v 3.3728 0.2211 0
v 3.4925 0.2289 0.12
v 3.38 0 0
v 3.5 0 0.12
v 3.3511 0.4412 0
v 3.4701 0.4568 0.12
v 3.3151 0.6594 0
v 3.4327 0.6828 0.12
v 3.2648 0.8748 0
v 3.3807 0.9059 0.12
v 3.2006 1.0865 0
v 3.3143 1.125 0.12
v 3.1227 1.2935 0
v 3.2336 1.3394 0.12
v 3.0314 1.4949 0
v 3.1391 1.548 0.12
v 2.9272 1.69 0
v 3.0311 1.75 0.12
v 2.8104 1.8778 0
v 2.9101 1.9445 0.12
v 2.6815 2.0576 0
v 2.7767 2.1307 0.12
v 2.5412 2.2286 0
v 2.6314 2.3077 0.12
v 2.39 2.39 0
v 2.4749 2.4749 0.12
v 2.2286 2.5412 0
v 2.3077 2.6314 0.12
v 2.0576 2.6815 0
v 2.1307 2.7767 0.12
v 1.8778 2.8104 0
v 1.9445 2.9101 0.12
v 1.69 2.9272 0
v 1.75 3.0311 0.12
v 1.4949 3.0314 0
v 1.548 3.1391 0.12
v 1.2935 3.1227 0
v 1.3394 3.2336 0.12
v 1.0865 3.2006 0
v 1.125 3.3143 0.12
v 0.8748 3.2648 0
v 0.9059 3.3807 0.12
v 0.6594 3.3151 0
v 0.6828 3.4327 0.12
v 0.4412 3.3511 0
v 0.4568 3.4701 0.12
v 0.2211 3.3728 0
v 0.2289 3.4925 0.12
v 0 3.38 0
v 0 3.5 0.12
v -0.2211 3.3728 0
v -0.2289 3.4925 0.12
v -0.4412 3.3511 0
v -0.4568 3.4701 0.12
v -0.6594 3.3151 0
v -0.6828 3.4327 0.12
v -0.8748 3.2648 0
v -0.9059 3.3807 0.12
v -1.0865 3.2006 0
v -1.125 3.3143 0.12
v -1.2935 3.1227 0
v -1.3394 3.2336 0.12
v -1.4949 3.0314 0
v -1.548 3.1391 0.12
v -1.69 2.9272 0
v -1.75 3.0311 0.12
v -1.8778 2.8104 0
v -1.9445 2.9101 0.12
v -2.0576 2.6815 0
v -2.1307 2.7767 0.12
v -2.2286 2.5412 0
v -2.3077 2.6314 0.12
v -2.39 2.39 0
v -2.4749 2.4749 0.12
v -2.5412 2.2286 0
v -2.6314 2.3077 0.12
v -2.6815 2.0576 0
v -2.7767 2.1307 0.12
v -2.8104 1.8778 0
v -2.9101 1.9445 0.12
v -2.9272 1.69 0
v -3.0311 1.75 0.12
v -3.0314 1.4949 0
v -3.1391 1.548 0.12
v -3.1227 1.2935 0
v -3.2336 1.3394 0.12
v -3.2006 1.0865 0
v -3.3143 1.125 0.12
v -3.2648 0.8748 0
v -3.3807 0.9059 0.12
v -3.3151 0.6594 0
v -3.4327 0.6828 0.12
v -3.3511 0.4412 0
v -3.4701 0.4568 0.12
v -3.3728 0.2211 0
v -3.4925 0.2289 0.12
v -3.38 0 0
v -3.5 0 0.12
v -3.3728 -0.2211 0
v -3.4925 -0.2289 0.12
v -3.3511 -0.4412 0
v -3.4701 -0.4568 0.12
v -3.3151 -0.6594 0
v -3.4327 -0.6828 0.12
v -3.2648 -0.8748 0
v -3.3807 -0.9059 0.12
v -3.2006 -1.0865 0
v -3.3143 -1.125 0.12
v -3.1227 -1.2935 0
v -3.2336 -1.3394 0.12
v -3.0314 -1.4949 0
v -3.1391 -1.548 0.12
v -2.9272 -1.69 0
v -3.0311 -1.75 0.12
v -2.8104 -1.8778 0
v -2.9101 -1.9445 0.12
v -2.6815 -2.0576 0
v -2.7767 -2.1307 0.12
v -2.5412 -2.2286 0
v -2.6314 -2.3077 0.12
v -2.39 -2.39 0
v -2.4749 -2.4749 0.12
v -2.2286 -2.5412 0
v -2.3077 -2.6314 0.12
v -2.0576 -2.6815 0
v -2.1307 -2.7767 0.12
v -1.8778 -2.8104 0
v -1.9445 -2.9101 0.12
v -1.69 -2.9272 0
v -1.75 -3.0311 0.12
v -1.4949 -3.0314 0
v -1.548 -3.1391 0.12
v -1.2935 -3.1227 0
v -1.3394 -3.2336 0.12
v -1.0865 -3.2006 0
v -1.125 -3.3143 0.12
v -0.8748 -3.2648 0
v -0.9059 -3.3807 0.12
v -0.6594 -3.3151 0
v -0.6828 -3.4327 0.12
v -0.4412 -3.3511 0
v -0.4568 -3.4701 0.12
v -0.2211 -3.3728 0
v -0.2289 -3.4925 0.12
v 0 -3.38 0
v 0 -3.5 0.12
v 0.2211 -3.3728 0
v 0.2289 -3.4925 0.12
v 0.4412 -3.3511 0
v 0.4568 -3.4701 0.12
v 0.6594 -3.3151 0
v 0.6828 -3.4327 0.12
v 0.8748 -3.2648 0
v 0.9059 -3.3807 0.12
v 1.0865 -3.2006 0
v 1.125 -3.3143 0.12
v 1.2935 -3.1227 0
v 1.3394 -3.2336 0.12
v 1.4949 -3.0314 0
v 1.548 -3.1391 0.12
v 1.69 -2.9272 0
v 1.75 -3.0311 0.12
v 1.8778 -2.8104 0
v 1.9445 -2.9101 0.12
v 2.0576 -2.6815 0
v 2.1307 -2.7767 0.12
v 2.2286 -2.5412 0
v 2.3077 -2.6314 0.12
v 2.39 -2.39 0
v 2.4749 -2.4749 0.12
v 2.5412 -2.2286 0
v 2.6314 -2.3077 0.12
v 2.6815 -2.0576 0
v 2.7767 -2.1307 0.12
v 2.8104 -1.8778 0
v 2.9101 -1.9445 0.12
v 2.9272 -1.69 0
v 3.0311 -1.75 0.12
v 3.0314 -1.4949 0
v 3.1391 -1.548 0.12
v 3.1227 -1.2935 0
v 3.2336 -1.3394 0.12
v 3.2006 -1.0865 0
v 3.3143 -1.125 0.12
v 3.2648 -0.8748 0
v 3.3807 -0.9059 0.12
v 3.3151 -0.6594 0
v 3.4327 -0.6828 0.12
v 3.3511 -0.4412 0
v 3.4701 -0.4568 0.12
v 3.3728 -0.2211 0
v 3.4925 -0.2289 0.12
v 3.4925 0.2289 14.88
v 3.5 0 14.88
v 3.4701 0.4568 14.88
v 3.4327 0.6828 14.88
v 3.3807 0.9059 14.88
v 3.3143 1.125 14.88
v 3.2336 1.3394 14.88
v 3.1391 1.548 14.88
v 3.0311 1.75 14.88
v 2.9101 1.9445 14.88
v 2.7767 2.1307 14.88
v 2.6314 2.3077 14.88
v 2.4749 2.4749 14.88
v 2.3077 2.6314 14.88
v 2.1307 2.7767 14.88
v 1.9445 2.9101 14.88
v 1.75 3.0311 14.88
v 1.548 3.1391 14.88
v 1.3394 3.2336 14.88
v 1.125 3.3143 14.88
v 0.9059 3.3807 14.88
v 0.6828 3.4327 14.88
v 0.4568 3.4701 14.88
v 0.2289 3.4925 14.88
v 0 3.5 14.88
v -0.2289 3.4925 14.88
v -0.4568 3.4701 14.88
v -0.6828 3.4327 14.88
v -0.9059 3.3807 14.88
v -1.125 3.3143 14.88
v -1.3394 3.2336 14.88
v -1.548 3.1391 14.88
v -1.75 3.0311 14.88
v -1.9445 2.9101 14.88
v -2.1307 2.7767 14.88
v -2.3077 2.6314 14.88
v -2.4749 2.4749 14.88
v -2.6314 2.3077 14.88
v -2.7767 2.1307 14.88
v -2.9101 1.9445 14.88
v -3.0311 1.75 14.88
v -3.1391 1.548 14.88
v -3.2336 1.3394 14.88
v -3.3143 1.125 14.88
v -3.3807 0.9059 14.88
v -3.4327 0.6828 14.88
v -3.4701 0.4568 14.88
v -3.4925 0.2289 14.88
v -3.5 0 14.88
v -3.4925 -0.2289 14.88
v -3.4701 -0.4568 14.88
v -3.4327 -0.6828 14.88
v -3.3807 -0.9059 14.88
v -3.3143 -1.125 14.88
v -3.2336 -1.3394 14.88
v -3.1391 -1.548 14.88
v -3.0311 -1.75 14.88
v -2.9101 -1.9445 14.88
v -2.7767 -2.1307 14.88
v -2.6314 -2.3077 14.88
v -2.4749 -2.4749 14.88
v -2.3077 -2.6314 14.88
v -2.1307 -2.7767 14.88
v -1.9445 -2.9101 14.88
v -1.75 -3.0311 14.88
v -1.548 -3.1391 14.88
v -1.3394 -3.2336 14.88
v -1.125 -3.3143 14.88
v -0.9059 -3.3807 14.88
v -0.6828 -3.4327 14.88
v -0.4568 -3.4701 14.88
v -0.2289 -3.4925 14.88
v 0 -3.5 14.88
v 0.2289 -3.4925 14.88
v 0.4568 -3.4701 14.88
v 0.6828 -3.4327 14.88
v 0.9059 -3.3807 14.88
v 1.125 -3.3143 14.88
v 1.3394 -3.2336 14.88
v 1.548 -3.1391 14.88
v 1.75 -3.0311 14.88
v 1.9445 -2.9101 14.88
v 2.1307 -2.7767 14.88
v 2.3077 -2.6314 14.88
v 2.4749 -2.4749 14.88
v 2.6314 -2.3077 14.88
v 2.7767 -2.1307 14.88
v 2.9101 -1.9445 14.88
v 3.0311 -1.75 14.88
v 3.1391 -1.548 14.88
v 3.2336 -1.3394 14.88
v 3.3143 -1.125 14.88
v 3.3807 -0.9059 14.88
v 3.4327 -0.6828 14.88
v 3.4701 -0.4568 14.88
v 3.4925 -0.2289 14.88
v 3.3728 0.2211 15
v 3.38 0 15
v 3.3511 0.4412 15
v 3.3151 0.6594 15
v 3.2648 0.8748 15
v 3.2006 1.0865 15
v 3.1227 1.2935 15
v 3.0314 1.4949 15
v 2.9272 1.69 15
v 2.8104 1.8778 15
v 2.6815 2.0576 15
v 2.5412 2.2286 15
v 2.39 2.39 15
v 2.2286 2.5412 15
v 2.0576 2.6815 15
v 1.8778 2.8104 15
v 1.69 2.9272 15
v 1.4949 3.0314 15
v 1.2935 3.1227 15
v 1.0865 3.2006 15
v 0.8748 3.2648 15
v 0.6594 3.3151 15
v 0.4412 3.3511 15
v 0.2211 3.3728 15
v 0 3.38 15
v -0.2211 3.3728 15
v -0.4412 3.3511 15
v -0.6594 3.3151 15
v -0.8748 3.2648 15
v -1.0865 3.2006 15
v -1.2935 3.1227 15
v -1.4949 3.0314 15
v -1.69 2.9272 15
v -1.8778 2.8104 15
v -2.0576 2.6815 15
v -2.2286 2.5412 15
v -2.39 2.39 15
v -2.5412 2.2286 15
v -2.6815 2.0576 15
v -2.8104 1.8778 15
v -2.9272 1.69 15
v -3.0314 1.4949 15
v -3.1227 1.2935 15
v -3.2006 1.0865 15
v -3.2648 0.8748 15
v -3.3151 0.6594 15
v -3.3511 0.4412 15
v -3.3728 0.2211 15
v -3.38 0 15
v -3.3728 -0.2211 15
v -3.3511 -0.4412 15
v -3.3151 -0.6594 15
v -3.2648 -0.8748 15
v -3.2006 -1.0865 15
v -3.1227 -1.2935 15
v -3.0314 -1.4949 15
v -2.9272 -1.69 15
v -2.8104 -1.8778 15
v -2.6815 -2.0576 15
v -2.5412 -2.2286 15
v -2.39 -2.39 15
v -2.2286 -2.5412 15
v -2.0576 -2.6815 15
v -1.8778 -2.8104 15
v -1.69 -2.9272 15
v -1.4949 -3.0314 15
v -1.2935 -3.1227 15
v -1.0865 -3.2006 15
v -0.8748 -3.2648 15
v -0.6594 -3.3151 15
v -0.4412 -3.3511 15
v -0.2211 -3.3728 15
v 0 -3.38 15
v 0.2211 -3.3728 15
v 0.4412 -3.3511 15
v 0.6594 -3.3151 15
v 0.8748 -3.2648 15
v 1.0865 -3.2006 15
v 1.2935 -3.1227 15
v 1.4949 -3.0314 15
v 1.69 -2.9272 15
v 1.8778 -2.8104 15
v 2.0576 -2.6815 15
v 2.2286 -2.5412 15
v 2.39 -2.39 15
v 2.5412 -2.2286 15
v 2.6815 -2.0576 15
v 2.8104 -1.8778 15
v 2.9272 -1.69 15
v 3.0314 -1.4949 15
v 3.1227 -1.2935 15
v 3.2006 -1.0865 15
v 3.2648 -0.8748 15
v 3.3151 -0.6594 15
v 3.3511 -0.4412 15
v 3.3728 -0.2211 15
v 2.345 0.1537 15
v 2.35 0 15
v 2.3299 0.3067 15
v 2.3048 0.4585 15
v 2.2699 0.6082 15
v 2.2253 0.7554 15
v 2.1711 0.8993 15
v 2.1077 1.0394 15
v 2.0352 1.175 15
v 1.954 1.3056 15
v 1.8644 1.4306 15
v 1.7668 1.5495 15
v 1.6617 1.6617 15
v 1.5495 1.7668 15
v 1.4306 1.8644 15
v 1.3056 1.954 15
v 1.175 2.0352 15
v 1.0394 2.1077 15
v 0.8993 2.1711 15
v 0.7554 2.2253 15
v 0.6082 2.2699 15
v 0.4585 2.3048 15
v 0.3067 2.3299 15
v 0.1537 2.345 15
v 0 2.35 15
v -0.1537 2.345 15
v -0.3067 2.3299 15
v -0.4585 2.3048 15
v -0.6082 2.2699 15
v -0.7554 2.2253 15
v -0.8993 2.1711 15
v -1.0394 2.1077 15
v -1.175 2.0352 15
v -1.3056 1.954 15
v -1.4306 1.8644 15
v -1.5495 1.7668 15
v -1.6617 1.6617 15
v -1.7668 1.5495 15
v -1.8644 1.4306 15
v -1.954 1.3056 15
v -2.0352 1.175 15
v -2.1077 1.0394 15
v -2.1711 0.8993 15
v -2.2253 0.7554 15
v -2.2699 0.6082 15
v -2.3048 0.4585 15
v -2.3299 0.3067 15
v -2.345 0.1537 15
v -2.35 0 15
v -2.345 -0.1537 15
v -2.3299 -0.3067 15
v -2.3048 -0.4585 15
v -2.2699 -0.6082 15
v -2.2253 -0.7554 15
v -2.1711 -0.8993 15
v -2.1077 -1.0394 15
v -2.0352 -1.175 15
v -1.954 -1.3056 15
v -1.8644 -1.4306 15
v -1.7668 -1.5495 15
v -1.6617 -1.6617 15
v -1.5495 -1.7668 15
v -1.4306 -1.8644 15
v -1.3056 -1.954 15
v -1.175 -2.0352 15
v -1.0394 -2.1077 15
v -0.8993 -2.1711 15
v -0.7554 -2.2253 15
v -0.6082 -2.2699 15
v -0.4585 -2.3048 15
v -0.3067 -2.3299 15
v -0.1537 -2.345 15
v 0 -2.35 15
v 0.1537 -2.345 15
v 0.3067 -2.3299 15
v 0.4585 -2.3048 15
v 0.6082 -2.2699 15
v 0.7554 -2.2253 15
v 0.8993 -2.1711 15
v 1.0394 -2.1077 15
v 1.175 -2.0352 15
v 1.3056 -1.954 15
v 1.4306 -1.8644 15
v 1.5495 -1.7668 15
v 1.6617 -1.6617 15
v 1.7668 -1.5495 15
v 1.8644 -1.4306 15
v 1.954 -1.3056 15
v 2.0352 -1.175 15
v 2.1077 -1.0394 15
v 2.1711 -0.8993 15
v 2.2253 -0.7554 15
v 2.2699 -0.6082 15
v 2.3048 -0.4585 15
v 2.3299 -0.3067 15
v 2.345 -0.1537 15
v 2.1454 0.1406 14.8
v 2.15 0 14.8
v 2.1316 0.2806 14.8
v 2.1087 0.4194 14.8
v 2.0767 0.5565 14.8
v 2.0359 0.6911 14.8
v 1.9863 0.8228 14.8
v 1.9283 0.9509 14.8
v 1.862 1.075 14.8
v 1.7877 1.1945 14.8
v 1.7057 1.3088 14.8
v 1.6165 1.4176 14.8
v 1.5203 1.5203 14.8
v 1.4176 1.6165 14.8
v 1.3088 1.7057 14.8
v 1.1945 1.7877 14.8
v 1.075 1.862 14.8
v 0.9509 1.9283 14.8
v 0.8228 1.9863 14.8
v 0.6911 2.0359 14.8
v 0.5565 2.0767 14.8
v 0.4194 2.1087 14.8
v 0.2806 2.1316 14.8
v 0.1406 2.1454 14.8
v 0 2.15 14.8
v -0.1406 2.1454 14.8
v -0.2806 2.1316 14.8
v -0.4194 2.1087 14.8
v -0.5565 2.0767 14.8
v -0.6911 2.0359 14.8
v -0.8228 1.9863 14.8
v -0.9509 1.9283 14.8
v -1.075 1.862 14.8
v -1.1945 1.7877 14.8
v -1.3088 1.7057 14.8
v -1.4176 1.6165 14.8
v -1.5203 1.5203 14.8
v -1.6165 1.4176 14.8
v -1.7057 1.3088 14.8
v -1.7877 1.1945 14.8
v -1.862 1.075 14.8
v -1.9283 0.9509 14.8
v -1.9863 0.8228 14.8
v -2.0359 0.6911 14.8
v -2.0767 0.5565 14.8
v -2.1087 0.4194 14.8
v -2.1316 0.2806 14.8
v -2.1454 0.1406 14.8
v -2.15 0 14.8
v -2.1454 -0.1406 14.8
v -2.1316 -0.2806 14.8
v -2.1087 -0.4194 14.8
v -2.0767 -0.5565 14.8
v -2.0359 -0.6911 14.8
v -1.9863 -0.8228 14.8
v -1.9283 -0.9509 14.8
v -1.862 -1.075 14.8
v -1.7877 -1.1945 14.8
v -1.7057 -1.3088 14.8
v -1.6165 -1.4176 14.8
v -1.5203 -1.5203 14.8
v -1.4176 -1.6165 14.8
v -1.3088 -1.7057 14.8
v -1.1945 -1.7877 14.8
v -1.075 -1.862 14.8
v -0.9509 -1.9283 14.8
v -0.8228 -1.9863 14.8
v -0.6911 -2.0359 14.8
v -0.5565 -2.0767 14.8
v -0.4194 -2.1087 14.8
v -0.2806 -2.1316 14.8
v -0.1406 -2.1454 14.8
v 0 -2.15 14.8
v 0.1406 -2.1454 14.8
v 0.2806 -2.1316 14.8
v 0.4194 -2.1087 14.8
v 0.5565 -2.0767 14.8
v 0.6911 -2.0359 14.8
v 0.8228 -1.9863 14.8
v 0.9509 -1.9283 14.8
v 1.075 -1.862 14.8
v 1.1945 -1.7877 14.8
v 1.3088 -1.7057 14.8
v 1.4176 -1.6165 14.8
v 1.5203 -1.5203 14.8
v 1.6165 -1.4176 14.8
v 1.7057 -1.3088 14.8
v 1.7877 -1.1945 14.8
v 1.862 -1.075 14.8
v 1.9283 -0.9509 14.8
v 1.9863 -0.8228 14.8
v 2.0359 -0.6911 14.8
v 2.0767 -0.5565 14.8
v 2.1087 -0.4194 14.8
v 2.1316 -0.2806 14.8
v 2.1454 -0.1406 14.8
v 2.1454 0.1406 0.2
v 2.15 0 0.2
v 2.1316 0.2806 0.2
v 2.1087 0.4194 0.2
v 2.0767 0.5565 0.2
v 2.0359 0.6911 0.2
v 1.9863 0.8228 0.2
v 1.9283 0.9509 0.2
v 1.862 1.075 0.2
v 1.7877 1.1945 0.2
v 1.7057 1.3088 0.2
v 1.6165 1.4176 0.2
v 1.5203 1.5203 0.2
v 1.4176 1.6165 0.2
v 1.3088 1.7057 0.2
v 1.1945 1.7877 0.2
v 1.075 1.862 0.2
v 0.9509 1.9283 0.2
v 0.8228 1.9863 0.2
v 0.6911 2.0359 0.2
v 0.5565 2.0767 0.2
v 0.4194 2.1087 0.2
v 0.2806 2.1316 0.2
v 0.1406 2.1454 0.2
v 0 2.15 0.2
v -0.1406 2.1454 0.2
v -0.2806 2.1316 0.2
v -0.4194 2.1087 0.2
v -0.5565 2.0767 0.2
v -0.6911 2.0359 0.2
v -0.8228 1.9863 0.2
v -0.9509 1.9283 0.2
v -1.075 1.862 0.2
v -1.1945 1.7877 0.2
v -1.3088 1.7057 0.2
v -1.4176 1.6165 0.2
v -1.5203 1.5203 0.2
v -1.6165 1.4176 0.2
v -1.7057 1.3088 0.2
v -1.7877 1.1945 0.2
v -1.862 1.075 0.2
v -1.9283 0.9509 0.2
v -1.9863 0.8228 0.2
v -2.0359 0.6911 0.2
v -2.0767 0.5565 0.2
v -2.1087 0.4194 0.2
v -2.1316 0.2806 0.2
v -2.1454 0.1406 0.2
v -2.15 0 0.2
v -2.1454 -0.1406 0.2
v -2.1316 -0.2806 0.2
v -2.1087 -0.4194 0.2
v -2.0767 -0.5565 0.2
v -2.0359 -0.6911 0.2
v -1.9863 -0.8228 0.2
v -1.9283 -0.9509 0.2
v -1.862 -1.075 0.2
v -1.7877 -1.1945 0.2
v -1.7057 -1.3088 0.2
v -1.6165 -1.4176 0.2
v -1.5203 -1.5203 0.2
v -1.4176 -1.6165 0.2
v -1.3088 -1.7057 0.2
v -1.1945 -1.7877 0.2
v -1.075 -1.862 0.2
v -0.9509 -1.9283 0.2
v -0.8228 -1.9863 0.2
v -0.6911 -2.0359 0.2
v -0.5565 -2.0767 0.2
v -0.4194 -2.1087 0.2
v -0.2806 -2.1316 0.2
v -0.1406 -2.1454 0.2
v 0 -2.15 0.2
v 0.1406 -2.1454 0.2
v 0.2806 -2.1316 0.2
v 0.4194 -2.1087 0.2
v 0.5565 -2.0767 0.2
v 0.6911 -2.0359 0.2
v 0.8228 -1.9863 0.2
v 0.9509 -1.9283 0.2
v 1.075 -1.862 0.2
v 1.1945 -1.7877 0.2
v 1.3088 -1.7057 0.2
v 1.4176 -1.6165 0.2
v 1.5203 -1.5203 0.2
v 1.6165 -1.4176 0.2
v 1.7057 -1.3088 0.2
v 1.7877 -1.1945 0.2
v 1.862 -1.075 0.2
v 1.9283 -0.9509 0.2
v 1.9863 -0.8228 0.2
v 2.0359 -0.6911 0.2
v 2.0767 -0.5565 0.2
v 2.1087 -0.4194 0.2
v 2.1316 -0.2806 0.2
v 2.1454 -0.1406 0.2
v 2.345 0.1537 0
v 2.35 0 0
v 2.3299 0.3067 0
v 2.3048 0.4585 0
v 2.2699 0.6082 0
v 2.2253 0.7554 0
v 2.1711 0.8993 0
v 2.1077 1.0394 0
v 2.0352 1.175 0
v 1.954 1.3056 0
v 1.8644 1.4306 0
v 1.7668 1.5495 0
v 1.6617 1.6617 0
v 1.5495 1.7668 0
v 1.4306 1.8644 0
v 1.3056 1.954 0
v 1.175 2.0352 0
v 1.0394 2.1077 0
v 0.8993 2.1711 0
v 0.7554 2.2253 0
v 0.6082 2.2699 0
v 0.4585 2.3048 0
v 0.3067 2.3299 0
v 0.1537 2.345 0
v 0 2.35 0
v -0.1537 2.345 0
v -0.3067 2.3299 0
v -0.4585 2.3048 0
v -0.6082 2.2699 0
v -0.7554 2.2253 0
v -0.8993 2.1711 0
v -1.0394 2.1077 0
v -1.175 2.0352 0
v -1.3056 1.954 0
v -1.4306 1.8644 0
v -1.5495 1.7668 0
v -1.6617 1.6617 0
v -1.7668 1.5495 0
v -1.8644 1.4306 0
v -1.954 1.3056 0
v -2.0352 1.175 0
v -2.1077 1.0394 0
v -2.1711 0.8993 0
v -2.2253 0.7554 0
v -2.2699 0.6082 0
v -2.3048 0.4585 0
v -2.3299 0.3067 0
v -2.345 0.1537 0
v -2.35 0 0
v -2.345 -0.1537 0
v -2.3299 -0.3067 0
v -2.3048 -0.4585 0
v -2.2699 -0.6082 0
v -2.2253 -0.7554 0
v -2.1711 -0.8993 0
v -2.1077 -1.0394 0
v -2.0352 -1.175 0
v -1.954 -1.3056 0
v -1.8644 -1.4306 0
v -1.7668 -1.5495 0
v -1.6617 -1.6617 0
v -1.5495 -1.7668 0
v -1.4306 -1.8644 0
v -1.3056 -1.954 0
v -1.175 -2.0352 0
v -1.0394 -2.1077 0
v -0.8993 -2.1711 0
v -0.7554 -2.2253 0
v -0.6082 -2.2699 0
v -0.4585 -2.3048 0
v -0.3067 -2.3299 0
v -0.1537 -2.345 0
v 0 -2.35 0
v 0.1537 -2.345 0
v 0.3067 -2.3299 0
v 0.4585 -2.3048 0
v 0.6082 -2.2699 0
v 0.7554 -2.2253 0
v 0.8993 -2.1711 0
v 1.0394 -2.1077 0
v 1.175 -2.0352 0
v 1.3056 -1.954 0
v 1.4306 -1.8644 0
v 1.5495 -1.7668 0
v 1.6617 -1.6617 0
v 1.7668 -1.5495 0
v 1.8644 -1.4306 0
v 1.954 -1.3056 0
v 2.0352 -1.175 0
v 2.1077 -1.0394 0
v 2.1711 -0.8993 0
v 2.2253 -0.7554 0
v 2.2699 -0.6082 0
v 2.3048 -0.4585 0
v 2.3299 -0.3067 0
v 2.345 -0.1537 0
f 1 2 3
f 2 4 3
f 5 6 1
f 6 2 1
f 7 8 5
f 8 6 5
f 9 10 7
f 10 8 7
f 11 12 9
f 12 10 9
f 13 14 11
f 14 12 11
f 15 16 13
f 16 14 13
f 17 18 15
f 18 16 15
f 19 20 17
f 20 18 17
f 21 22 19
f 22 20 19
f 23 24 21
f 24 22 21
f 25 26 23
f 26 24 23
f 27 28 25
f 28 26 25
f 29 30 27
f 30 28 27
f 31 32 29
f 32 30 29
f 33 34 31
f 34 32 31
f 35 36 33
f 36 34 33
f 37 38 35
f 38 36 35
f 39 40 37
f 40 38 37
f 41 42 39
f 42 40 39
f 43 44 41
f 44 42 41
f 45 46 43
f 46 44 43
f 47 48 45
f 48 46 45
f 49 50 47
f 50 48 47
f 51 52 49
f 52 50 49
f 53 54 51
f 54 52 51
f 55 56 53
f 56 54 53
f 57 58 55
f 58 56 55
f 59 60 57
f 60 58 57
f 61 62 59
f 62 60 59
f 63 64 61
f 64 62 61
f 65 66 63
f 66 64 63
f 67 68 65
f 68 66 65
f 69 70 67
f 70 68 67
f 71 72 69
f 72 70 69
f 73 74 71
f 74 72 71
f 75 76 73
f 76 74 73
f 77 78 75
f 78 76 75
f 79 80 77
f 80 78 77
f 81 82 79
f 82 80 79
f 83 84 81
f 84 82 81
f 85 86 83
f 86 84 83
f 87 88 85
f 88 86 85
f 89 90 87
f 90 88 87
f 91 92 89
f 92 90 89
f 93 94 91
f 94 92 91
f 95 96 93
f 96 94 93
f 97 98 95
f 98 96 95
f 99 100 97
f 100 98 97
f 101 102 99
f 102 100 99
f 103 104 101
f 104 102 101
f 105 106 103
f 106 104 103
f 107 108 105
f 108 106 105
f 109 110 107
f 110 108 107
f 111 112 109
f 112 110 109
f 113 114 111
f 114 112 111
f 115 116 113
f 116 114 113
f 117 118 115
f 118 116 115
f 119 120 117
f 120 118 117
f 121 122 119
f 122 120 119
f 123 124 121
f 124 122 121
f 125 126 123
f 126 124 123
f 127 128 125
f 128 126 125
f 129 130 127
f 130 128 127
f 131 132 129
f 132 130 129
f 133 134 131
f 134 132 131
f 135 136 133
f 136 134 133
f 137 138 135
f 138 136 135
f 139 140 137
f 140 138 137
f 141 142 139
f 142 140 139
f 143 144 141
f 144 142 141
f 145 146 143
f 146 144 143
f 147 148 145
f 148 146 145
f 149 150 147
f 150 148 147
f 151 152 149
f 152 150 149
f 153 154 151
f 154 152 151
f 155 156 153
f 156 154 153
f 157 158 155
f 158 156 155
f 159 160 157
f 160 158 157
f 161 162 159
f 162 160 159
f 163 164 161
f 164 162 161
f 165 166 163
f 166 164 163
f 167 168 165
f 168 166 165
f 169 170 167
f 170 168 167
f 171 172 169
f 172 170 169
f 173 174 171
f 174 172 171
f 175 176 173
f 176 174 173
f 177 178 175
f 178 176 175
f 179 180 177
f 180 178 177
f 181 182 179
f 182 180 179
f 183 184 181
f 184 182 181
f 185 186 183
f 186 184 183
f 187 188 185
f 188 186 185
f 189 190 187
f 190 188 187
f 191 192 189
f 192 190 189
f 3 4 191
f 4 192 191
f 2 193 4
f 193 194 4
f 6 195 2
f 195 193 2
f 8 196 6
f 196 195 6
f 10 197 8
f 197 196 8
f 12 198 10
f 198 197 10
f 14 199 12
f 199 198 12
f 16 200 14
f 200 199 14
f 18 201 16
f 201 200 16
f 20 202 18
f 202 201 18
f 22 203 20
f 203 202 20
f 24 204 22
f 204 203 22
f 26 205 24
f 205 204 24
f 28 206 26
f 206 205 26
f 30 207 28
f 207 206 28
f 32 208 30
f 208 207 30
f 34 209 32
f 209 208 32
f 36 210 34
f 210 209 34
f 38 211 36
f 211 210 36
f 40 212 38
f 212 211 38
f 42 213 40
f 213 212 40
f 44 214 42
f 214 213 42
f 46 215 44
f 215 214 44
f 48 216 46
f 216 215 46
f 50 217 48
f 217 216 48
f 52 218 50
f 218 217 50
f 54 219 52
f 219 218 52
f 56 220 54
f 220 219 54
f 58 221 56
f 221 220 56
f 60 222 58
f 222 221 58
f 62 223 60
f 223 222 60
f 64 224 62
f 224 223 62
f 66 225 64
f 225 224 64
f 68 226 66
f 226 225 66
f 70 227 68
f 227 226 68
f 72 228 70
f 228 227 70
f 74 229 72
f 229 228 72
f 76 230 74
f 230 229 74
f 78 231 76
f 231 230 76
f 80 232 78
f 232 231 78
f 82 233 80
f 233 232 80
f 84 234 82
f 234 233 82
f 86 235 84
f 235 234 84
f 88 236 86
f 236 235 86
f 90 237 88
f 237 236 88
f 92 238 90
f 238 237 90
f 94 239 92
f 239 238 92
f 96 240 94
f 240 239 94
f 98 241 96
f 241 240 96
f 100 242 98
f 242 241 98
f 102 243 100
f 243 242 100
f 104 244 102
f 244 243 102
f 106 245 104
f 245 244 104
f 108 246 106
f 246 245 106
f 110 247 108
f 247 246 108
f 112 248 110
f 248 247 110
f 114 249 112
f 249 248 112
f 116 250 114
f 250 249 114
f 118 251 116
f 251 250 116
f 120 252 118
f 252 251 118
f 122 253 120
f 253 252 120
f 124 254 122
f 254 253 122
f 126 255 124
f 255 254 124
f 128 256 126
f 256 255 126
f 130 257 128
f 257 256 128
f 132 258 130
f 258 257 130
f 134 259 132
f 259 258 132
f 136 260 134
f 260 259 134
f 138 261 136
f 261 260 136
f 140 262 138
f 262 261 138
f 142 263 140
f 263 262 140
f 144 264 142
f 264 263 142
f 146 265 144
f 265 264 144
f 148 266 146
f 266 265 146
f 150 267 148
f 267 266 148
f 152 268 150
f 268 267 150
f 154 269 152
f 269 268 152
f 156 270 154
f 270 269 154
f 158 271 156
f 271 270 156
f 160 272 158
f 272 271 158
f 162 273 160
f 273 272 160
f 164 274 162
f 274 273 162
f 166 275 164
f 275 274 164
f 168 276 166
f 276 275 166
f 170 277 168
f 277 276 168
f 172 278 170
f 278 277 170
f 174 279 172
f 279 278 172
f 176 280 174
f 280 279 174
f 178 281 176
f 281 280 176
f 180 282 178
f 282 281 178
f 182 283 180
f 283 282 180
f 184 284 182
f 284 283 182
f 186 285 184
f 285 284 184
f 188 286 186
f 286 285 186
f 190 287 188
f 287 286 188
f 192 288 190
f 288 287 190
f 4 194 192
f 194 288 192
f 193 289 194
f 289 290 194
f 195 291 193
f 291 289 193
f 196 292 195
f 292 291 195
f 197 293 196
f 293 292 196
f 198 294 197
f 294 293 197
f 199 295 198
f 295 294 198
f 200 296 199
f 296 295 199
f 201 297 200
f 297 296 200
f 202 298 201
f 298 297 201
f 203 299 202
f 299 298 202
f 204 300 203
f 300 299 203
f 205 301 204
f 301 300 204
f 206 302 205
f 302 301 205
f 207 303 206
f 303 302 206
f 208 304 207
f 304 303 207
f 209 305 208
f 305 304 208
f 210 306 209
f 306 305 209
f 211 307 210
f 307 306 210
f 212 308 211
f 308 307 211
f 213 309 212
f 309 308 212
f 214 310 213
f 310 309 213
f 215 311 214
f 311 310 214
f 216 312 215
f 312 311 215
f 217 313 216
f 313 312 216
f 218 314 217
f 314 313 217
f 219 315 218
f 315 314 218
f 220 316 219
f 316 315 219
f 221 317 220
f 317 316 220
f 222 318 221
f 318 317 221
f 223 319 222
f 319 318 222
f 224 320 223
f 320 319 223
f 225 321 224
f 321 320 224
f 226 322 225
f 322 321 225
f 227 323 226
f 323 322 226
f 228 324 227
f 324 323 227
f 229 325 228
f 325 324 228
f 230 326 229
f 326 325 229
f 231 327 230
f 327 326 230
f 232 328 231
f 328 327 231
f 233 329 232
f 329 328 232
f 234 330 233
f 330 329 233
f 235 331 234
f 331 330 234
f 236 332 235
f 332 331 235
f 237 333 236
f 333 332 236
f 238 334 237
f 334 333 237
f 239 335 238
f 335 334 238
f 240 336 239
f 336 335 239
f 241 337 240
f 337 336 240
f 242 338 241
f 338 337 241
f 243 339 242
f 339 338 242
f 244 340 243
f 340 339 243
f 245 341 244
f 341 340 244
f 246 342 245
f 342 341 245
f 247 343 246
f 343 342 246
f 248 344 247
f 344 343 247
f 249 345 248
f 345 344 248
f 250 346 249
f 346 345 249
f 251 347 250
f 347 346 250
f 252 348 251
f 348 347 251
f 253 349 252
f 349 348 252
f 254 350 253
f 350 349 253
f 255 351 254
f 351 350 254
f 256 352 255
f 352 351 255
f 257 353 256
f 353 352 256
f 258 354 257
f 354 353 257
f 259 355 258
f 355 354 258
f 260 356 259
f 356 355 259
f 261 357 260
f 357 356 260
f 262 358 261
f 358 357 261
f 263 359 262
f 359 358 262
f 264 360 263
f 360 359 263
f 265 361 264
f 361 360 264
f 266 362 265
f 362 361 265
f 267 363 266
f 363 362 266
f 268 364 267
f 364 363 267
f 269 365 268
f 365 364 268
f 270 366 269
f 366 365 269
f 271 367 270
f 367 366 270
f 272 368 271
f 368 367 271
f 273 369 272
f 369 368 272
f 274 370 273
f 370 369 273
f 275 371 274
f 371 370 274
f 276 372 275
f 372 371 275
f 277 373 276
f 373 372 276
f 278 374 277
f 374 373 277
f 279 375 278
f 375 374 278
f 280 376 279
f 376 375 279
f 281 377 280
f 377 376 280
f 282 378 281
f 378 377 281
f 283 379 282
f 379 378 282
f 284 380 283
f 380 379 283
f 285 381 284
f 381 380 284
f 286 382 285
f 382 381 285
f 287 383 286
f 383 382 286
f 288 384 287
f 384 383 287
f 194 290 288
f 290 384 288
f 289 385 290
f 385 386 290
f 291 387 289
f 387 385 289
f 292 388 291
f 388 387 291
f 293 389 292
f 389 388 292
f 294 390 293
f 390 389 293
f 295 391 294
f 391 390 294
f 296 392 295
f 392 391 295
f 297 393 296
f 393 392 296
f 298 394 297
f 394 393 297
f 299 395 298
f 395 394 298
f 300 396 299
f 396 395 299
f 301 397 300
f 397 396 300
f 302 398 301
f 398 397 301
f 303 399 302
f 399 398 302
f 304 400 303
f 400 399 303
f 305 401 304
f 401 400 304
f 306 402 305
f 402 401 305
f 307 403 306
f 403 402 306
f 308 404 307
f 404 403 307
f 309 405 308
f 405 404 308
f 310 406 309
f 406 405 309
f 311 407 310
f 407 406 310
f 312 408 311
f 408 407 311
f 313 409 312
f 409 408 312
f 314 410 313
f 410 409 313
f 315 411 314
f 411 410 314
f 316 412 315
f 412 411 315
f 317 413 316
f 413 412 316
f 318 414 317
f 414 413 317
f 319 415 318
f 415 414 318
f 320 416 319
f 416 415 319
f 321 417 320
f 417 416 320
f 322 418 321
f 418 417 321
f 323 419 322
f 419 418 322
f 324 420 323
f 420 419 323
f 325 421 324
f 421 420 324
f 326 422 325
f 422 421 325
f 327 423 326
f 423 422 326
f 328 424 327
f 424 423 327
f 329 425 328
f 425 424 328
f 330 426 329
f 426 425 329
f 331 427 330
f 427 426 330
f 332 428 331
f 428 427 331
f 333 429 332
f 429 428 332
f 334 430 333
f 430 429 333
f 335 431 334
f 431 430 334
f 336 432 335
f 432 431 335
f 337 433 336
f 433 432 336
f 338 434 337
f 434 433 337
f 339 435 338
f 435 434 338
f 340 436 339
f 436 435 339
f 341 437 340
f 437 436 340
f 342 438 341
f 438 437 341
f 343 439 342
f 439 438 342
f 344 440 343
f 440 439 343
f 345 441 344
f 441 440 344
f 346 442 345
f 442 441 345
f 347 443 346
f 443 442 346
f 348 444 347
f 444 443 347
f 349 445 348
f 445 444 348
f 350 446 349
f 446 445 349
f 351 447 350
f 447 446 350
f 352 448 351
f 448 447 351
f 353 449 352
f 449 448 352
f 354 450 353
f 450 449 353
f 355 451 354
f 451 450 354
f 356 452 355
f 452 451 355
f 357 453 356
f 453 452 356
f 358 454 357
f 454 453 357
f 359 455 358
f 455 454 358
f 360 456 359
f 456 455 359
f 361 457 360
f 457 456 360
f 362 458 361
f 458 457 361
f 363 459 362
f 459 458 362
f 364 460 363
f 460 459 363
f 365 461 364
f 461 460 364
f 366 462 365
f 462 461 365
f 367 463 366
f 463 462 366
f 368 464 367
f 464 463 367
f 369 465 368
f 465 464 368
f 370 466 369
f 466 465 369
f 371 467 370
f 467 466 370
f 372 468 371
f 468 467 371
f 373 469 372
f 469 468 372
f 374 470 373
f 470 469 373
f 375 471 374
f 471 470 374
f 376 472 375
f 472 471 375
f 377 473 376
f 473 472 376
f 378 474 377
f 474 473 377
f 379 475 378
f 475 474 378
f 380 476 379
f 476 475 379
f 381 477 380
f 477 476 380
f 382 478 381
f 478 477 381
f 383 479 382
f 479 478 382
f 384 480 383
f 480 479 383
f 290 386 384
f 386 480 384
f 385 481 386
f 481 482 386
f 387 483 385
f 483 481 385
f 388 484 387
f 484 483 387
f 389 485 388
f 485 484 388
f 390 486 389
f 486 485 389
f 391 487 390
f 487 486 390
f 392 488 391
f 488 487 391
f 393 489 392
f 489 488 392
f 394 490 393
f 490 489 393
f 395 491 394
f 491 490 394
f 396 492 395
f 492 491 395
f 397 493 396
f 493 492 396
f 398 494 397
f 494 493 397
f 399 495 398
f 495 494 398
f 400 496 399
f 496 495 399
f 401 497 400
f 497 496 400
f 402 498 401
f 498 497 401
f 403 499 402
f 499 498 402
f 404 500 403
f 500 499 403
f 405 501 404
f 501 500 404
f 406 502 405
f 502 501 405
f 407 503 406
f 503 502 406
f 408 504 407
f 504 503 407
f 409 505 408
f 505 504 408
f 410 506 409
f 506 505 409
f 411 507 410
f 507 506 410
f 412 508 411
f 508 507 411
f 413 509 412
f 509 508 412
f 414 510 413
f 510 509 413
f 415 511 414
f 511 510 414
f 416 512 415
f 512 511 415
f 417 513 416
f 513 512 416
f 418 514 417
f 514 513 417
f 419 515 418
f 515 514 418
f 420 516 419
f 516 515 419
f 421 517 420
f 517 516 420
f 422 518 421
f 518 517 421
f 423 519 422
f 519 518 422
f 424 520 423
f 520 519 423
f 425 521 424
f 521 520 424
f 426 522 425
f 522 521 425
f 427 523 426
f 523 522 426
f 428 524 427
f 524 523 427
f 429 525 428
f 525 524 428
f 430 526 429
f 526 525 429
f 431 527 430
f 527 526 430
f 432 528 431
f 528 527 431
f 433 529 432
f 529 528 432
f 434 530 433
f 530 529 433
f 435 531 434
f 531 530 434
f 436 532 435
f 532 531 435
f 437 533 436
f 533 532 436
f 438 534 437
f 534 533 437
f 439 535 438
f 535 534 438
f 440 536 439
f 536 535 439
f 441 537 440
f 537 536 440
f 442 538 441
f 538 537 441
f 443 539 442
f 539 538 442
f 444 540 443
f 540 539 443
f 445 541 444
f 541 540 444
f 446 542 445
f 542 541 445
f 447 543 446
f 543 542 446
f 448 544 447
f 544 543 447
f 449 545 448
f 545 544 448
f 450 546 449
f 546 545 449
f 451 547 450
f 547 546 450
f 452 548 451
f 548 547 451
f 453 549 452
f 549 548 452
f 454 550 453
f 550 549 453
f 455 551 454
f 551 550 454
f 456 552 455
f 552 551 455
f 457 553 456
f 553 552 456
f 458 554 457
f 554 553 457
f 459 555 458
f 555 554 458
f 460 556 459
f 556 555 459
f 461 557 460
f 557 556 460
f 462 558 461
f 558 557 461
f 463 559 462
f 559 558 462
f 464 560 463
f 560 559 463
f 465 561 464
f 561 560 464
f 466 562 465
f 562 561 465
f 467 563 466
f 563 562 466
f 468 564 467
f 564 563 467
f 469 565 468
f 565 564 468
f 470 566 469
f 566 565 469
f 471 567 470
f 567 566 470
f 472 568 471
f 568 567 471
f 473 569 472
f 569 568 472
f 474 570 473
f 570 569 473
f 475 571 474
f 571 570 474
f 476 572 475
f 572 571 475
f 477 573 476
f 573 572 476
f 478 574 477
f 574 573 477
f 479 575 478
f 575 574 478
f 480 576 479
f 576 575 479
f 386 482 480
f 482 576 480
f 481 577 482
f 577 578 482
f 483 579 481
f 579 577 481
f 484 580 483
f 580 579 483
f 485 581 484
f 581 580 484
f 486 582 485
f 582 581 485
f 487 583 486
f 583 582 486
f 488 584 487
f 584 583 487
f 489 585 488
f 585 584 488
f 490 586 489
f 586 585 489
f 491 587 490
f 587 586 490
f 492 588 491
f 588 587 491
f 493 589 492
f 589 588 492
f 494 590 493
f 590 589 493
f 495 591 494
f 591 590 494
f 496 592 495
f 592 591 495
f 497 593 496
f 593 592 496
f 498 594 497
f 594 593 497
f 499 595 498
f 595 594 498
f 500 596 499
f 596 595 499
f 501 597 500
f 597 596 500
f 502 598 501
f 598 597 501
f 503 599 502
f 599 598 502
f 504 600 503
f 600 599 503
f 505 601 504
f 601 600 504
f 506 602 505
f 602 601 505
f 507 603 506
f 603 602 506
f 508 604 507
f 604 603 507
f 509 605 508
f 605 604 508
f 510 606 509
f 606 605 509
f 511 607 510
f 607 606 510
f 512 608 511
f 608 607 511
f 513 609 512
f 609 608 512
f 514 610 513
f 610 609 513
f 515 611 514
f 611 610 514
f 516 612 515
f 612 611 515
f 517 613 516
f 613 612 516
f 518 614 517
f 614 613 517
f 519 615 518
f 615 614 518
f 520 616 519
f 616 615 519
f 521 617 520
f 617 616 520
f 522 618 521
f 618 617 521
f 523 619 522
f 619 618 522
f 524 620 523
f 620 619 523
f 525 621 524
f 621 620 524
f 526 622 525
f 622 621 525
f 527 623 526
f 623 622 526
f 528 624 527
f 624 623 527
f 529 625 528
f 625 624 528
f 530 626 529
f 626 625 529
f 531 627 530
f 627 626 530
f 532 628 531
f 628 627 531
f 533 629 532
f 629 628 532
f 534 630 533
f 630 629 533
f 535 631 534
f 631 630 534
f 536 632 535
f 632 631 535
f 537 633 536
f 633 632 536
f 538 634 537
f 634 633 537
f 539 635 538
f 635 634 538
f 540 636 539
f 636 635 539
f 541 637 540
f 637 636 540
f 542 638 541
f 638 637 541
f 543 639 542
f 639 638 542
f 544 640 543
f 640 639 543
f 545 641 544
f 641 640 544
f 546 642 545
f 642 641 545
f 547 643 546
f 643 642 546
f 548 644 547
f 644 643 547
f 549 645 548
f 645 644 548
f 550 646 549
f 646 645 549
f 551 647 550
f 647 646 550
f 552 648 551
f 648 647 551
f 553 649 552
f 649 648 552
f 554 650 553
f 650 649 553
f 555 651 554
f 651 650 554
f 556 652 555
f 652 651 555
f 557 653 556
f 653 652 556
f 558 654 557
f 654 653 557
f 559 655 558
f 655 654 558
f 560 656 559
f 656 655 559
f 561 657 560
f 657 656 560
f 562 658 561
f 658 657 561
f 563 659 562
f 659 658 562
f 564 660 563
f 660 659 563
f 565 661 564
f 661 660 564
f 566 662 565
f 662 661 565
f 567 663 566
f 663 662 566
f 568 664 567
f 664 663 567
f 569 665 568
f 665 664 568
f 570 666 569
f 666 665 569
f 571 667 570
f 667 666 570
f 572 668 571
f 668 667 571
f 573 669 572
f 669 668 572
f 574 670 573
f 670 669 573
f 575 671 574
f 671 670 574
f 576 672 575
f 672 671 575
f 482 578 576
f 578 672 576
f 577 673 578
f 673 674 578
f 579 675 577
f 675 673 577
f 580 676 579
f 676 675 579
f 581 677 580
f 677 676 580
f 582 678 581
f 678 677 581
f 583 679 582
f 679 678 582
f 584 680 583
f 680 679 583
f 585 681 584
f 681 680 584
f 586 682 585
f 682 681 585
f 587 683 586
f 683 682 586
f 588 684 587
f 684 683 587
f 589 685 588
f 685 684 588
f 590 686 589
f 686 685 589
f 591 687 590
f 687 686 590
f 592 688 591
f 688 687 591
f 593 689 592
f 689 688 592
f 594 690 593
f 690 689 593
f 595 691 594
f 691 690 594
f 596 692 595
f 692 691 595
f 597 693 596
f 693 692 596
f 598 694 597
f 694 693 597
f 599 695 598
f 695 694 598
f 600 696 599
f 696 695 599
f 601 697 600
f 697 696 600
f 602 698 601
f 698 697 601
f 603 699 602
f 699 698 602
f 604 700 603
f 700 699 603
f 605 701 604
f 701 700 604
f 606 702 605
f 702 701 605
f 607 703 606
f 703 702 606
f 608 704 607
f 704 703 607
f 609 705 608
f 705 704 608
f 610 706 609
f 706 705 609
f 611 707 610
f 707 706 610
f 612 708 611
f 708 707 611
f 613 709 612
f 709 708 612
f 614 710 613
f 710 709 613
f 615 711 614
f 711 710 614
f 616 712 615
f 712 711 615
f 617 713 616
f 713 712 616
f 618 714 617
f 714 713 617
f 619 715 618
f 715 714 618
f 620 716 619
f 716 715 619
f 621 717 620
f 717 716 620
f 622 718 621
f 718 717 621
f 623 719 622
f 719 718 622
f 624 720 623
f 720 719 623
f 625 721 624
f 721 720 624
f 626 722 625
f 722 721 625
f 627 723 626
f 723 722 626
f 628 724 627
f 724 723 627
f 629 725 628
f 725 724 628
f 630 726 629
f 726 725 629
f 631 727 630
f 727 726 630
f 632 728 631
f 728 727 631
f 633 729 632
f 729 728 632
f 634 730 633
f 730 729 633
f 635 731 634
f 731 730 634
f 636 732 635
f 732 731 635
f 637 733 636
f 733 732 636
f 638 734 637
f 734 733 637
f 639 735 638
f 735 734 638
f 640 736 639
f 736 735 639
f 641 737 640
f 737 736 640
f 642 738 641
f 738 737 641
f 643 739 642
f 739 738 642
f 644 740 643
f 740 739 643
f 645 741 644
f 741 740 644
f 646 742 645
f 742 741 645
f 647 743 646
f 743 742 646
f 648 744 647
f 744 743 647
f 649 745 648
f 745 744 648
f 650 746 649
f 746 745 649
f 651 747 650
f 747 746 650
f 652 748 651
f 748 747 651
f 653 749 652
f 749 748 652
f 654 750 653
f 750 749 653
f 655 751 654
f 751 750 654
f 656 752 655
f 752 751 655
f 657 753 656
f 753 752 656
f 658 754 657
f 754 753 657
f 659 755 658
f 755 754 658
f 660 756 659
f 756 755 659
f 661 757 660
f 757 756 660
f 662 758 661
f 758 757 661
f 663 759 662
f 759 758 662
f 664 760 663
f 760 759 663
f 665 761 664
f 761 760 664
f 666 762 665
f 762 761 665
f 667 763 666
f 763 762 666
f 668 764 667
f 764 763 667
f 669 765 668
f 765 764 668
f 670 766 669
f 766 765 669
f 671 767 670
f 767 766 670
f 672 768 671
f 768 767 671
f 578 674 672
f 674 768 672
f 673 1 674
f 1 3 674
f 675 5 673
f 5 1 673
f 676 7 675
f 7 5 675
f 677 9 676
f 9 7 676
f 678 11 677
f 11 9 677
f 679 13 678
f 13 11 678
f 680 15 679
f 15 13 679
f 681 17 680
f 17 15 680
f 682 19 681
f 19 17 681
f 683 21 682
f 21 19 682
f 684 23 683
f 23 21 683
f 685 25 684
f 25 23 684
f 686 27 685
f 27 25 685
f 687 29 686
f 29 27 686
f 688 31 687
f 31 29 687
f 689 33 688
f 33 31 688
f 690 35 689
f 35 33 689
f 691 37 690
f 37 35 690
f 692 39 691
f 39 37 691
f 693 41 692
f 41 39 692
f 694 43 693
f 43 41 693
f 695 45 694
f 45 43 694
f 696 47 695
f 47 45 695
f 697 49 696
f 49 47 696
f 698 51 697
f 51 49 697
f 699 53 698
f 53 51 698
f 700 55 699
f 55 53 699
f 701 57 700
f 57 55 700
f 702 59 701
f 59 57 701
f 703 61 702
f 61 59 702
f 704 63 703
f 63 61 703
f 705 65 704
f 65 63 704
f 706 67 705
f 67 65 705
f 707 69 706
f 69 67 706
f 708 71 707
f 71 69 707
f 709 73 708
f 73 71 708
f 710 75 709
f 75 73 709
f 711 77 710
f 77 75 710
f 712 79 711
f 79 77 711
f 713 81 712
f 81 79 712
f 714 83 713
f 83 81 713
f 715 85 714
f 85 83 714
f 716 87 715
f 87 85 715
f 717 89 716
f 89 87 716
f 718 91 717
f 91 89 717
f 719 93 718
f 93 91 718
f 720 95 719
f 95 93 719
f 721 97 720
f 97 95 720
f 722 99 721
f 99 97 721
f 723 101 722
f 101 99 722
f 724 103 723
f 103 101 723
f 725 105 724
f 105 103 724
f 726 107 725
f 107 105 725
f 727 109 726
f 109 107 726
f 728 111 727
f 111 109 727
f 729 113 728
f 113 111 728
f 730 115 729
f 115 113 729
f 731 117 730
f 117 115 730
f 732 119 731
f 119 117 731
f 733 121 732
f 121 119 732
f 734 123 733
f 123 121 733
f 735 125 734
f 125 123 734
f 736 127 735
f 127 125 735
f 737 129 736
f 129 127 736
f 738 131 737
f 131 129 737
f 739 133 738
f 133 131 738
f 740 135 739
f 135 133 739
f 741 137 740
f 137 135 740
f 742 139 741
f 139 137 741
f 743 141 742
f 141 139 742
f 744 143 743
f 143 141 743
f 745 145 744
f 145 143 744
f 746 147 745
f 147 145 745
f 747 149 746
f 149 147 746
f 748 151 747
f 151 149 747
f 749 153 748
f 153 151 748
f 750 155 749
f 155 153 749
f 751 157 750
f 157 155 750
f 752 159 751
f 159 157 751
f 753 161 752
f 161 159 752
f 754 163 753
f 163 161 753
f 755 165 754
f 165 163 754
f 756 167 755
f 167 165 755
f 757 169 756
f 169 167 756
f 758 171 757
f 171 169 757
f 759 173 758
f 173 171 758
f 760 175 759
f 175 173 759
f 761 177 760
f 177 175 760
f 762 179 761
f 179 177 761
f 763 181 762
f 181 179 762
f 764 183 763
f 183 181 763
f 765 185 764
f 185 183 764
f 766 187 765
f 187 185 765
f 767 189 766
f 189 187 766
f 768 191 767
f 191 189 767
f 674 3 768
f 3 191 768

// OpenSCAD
// OOMP generic catalogue model; units: mm.
// Stud length is additional to body depth. Tapping depths are model assumptions.
variant = "full"; // [full, display]
family = "spacer";
connection_type = "plain";
depth_mm = 15;
stud_length_mm = 0;
tapped_depth_mm = 0;
bore_mm = 4.3;
outer_diameter_mm = 7;
across_flats_mm = 6;
thread_nominal_diameter_mm = 3;
thread_pitch_mm = 0.5;
edge_chamfer_mm = 0.12;
mouth_chamfer_mm = 0.2;
angular_segments = 96;
samples_per_pitch = 16;

// Boundary travels up the outside, then down any tapped/plain bore.
// Equal-height rings at shoulders form the annular shoulder faces.
n = angular_segments;
threaded = family == "standoff";
has_stud = connection_type == "stud_to_tapped" || connection_type == "stud_to_stud";
two_studs = connection_type == "stud_to_stud";
through = !threaded || connection_type == "tapped_to_tapped";
pitch = thread_pitch_mm;
diameter = threaded ? thread_nominal_diameter_mm : bore_mm;
minor = diameter - 5*sqrt(3)*pitch/8;
transition = mouth_chamfer_mm + (threaded ? 5*sqrt(3)*pitch/16 : 0);
tip_chamfer = mouth_chamfer_mm + 17*sqrt(3)*pitch/48;
function sorted(v) = len(v)<=1 ? v : let(p=v[0])
    concat(sorted([for(x=v) if(x<p-1e-8) x]), [p], sorted([for(x=v) if(x>p+1e-8) x]));
function reverse(v) = [for(i=[len(v)-1:-1:0]) v[i]];
function theta(i) = i*360/n;
function fract(x) = x-floor(x);
function phase_distance(i,z) = abs(fract(z/pitch-theta(i)/360+0.5)-0.5);
function thread_r(i,z) = minor/2 + min(5*sqrt(3)*pitch/16,
    max(0,(phase_distance(i,z)-0.125)*pitch*sqrt(3)));
function stud_r(i,z,tip) = min(diameter/2 - (variant=="full" ?
    min(17*sqrt(3)*pitch/48,max(0,(phase_distance(i,z)-0.0625)*pitch*sqrt(3))) : 0),
    diameter/2-tip_chamfer+abs(z-tip));
function body_r(i,z) = (threaded ? across_flats_mm/2/cos(theta(i)%60-30) : outer_diameter_mm/2)
    - max(0,edge_chamfer_mm-min(z,depth_mm-z));
function bore_r(i,z) = max(threaded ? (variant=="full" ? thread_r(i,z) : minor/2) : diameter/2,
    diameter/2+mouth_chamfer_mm-(through ? min(z,depth_mm-z) : depth_mm-z));
function stud_z(a,b,tip) = let(count=variant=="full" ? ceil(stud_length_mm/pitch*samples_per_pitch) : 1)
    sorted(concat([for(i=[0:count]) a+(b-a)*i/count], [tip==a ? tip+tip_chamfer : tip-tip_chamfer]));
body_z = sorted([0,edge_chamfer_mm,depth_mm-edge_chamfer_mm,depth_mm]);
low = through ? 0 : depth_mm-tapped_depth_mm;
count = threaded && variant=="full" ? ceil((depth_mm-low)/pitch*samples_per_pitch) : 1;
bore_z = two_studs ? [] : reverse(sorted(concat(
    [for(i=[0:count]) low+(depth_mm-low)*i/count],
    [depth_mm-mouth_chamfer_mm,depth_mm-transition],
    through ? [mouth_chamfer_mm,transition] : [])));
// Ring descriptors: [height, kind, tip]. Kind: 0 body, 1 stud, 2 bore.
rings = concat(
    has_stud ? [for(z=stud_z(-stud_length_mm,0,-stud_length_mm)) [z,1,-stud_length_mm]] : [],
    [for(z=body_z) [z,0,0]],
    two_studs ? [for(z=stud_z(depth_mm,depth_mm+stud_length_mm,depth_mm+stud_length_mm)) [z,1,depth_mm+stud_length_mm]] : [],
    [for(z=bore_z) [z,2,0]]);
function radius(i,ring) = ring[1]==0 ? body_r(i,ring[0]) :
    ring[1]==1 ? stud_r(i,ring[0],ring[2]) : bore_r(i,ring[0]);
points = concat([for(ring=rings) for(i=[0:n-1])
    [radius(i,ring)*cos(theta(i)),radius(i,ring)*sin(theta(i)),ring[0]]],
    through ? [] : [[0,0,rings[0][0]],[0,0,rings[len(rings)-1][0]]]);
center = len(rings)*n;
last = (len(rings)-1)*n;
// OpenSCAD winding is opposite to STL winding.
faces = concat(
    [for(j=[0:len(rings)-(through ? 1 : 2)]) for(i=[0:n-1]) each
        let(a=j*n+i,b=j*n+(i+1)%n,c=((j+1)%len(rings))*n+(i+1)%n,d=((j+1)%len(rings))*n+i)
        [[a,c,b],[a,d,c]]],
    through ? [] : [for(i=[0:n-1]) each let(k=(i+1)%n)
        [[center,i,k],[center+1,last+k,last+i]]]);
assert(family=="spacer" || family=="standoff");
assert(!threaded || connection_type=="tapped_to_tapped" || has_stud);
assert(depth_mm>0 && diameter>0 && pitch>0);
assert(variant=="full" || variant=="display");
assert(n>=24 && n%12==0 && samples_per_pitch>=8);
assert(mouth_chamfer_mm>0 && mouth_chamfer_mm<depth_mm/2);
assert(edge_chamfer_mm>=0 && edge_chamfer_mm<depth_mm/2);
assert(diameter+4*max(mouth_chamfer_mm,edge_chamfer_mm) < (threaded ? across_flats_mm : outer_diameter_mm));
assert(!has_stud || stud_length_mm>2*mouth_chamfer_mm);
assert(!through || !threaded || 2*transition<depth_mm);
assert(connection_type!="stud_to_tapped" || (tapped_depth_mm>transition && tapped_depth_mm<depth_mm));
color([0.86,0.85,0.81]) polyhedron(points=points,faces=faces,convexity=20);
